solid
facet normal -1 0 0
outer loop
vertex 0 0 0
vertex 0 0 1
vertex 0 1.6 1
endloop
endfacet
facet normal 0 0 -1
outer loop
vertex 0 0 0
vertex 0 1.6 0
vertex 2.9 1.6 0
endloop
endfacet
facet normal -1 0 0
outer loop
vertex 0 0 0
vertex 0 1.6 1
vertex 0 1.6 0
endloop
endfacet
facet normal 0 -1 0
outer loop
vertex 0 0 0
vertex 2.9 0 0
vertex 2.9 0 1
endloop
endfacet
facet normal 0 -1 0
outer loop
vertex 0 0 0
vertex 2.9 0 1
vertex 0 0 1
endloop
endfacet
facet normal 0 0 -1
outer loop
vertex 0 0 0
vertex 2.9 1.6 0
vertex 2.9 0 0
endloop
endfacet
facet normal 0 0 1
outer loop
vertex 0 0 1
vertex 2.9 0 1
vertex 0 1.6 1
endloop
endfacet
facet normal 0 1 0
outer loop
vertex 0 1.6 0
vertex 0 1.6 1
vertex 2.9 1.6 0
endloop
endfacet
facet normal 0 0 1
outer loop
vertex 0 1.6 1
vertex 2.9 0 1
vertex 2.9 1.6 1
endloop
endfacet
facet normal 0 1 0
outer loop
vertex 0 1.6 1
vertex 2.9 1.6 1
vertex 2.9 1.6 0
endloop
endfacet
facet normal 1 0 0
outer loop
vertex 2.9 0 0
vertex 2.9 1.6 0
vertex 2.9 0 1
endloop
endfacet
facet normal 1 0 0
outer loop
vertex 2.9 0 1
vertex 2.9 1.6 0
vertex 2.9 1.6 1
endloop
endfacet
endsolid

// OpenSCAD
/* Warning, this is a very basic generator with a lot of approximation 
input data : [TSOT, L9X, 2.90x1.60mm, 5, , D, C04-00128D]
generated by com.zoubworld.electronics.cad.model3d.Basic
Date : Sun Feb 15 10:50:48 CET 2026
*/

//body
color("black")
translate([0,0,0])
cube([2.9,1.6,1.0], center=false);
